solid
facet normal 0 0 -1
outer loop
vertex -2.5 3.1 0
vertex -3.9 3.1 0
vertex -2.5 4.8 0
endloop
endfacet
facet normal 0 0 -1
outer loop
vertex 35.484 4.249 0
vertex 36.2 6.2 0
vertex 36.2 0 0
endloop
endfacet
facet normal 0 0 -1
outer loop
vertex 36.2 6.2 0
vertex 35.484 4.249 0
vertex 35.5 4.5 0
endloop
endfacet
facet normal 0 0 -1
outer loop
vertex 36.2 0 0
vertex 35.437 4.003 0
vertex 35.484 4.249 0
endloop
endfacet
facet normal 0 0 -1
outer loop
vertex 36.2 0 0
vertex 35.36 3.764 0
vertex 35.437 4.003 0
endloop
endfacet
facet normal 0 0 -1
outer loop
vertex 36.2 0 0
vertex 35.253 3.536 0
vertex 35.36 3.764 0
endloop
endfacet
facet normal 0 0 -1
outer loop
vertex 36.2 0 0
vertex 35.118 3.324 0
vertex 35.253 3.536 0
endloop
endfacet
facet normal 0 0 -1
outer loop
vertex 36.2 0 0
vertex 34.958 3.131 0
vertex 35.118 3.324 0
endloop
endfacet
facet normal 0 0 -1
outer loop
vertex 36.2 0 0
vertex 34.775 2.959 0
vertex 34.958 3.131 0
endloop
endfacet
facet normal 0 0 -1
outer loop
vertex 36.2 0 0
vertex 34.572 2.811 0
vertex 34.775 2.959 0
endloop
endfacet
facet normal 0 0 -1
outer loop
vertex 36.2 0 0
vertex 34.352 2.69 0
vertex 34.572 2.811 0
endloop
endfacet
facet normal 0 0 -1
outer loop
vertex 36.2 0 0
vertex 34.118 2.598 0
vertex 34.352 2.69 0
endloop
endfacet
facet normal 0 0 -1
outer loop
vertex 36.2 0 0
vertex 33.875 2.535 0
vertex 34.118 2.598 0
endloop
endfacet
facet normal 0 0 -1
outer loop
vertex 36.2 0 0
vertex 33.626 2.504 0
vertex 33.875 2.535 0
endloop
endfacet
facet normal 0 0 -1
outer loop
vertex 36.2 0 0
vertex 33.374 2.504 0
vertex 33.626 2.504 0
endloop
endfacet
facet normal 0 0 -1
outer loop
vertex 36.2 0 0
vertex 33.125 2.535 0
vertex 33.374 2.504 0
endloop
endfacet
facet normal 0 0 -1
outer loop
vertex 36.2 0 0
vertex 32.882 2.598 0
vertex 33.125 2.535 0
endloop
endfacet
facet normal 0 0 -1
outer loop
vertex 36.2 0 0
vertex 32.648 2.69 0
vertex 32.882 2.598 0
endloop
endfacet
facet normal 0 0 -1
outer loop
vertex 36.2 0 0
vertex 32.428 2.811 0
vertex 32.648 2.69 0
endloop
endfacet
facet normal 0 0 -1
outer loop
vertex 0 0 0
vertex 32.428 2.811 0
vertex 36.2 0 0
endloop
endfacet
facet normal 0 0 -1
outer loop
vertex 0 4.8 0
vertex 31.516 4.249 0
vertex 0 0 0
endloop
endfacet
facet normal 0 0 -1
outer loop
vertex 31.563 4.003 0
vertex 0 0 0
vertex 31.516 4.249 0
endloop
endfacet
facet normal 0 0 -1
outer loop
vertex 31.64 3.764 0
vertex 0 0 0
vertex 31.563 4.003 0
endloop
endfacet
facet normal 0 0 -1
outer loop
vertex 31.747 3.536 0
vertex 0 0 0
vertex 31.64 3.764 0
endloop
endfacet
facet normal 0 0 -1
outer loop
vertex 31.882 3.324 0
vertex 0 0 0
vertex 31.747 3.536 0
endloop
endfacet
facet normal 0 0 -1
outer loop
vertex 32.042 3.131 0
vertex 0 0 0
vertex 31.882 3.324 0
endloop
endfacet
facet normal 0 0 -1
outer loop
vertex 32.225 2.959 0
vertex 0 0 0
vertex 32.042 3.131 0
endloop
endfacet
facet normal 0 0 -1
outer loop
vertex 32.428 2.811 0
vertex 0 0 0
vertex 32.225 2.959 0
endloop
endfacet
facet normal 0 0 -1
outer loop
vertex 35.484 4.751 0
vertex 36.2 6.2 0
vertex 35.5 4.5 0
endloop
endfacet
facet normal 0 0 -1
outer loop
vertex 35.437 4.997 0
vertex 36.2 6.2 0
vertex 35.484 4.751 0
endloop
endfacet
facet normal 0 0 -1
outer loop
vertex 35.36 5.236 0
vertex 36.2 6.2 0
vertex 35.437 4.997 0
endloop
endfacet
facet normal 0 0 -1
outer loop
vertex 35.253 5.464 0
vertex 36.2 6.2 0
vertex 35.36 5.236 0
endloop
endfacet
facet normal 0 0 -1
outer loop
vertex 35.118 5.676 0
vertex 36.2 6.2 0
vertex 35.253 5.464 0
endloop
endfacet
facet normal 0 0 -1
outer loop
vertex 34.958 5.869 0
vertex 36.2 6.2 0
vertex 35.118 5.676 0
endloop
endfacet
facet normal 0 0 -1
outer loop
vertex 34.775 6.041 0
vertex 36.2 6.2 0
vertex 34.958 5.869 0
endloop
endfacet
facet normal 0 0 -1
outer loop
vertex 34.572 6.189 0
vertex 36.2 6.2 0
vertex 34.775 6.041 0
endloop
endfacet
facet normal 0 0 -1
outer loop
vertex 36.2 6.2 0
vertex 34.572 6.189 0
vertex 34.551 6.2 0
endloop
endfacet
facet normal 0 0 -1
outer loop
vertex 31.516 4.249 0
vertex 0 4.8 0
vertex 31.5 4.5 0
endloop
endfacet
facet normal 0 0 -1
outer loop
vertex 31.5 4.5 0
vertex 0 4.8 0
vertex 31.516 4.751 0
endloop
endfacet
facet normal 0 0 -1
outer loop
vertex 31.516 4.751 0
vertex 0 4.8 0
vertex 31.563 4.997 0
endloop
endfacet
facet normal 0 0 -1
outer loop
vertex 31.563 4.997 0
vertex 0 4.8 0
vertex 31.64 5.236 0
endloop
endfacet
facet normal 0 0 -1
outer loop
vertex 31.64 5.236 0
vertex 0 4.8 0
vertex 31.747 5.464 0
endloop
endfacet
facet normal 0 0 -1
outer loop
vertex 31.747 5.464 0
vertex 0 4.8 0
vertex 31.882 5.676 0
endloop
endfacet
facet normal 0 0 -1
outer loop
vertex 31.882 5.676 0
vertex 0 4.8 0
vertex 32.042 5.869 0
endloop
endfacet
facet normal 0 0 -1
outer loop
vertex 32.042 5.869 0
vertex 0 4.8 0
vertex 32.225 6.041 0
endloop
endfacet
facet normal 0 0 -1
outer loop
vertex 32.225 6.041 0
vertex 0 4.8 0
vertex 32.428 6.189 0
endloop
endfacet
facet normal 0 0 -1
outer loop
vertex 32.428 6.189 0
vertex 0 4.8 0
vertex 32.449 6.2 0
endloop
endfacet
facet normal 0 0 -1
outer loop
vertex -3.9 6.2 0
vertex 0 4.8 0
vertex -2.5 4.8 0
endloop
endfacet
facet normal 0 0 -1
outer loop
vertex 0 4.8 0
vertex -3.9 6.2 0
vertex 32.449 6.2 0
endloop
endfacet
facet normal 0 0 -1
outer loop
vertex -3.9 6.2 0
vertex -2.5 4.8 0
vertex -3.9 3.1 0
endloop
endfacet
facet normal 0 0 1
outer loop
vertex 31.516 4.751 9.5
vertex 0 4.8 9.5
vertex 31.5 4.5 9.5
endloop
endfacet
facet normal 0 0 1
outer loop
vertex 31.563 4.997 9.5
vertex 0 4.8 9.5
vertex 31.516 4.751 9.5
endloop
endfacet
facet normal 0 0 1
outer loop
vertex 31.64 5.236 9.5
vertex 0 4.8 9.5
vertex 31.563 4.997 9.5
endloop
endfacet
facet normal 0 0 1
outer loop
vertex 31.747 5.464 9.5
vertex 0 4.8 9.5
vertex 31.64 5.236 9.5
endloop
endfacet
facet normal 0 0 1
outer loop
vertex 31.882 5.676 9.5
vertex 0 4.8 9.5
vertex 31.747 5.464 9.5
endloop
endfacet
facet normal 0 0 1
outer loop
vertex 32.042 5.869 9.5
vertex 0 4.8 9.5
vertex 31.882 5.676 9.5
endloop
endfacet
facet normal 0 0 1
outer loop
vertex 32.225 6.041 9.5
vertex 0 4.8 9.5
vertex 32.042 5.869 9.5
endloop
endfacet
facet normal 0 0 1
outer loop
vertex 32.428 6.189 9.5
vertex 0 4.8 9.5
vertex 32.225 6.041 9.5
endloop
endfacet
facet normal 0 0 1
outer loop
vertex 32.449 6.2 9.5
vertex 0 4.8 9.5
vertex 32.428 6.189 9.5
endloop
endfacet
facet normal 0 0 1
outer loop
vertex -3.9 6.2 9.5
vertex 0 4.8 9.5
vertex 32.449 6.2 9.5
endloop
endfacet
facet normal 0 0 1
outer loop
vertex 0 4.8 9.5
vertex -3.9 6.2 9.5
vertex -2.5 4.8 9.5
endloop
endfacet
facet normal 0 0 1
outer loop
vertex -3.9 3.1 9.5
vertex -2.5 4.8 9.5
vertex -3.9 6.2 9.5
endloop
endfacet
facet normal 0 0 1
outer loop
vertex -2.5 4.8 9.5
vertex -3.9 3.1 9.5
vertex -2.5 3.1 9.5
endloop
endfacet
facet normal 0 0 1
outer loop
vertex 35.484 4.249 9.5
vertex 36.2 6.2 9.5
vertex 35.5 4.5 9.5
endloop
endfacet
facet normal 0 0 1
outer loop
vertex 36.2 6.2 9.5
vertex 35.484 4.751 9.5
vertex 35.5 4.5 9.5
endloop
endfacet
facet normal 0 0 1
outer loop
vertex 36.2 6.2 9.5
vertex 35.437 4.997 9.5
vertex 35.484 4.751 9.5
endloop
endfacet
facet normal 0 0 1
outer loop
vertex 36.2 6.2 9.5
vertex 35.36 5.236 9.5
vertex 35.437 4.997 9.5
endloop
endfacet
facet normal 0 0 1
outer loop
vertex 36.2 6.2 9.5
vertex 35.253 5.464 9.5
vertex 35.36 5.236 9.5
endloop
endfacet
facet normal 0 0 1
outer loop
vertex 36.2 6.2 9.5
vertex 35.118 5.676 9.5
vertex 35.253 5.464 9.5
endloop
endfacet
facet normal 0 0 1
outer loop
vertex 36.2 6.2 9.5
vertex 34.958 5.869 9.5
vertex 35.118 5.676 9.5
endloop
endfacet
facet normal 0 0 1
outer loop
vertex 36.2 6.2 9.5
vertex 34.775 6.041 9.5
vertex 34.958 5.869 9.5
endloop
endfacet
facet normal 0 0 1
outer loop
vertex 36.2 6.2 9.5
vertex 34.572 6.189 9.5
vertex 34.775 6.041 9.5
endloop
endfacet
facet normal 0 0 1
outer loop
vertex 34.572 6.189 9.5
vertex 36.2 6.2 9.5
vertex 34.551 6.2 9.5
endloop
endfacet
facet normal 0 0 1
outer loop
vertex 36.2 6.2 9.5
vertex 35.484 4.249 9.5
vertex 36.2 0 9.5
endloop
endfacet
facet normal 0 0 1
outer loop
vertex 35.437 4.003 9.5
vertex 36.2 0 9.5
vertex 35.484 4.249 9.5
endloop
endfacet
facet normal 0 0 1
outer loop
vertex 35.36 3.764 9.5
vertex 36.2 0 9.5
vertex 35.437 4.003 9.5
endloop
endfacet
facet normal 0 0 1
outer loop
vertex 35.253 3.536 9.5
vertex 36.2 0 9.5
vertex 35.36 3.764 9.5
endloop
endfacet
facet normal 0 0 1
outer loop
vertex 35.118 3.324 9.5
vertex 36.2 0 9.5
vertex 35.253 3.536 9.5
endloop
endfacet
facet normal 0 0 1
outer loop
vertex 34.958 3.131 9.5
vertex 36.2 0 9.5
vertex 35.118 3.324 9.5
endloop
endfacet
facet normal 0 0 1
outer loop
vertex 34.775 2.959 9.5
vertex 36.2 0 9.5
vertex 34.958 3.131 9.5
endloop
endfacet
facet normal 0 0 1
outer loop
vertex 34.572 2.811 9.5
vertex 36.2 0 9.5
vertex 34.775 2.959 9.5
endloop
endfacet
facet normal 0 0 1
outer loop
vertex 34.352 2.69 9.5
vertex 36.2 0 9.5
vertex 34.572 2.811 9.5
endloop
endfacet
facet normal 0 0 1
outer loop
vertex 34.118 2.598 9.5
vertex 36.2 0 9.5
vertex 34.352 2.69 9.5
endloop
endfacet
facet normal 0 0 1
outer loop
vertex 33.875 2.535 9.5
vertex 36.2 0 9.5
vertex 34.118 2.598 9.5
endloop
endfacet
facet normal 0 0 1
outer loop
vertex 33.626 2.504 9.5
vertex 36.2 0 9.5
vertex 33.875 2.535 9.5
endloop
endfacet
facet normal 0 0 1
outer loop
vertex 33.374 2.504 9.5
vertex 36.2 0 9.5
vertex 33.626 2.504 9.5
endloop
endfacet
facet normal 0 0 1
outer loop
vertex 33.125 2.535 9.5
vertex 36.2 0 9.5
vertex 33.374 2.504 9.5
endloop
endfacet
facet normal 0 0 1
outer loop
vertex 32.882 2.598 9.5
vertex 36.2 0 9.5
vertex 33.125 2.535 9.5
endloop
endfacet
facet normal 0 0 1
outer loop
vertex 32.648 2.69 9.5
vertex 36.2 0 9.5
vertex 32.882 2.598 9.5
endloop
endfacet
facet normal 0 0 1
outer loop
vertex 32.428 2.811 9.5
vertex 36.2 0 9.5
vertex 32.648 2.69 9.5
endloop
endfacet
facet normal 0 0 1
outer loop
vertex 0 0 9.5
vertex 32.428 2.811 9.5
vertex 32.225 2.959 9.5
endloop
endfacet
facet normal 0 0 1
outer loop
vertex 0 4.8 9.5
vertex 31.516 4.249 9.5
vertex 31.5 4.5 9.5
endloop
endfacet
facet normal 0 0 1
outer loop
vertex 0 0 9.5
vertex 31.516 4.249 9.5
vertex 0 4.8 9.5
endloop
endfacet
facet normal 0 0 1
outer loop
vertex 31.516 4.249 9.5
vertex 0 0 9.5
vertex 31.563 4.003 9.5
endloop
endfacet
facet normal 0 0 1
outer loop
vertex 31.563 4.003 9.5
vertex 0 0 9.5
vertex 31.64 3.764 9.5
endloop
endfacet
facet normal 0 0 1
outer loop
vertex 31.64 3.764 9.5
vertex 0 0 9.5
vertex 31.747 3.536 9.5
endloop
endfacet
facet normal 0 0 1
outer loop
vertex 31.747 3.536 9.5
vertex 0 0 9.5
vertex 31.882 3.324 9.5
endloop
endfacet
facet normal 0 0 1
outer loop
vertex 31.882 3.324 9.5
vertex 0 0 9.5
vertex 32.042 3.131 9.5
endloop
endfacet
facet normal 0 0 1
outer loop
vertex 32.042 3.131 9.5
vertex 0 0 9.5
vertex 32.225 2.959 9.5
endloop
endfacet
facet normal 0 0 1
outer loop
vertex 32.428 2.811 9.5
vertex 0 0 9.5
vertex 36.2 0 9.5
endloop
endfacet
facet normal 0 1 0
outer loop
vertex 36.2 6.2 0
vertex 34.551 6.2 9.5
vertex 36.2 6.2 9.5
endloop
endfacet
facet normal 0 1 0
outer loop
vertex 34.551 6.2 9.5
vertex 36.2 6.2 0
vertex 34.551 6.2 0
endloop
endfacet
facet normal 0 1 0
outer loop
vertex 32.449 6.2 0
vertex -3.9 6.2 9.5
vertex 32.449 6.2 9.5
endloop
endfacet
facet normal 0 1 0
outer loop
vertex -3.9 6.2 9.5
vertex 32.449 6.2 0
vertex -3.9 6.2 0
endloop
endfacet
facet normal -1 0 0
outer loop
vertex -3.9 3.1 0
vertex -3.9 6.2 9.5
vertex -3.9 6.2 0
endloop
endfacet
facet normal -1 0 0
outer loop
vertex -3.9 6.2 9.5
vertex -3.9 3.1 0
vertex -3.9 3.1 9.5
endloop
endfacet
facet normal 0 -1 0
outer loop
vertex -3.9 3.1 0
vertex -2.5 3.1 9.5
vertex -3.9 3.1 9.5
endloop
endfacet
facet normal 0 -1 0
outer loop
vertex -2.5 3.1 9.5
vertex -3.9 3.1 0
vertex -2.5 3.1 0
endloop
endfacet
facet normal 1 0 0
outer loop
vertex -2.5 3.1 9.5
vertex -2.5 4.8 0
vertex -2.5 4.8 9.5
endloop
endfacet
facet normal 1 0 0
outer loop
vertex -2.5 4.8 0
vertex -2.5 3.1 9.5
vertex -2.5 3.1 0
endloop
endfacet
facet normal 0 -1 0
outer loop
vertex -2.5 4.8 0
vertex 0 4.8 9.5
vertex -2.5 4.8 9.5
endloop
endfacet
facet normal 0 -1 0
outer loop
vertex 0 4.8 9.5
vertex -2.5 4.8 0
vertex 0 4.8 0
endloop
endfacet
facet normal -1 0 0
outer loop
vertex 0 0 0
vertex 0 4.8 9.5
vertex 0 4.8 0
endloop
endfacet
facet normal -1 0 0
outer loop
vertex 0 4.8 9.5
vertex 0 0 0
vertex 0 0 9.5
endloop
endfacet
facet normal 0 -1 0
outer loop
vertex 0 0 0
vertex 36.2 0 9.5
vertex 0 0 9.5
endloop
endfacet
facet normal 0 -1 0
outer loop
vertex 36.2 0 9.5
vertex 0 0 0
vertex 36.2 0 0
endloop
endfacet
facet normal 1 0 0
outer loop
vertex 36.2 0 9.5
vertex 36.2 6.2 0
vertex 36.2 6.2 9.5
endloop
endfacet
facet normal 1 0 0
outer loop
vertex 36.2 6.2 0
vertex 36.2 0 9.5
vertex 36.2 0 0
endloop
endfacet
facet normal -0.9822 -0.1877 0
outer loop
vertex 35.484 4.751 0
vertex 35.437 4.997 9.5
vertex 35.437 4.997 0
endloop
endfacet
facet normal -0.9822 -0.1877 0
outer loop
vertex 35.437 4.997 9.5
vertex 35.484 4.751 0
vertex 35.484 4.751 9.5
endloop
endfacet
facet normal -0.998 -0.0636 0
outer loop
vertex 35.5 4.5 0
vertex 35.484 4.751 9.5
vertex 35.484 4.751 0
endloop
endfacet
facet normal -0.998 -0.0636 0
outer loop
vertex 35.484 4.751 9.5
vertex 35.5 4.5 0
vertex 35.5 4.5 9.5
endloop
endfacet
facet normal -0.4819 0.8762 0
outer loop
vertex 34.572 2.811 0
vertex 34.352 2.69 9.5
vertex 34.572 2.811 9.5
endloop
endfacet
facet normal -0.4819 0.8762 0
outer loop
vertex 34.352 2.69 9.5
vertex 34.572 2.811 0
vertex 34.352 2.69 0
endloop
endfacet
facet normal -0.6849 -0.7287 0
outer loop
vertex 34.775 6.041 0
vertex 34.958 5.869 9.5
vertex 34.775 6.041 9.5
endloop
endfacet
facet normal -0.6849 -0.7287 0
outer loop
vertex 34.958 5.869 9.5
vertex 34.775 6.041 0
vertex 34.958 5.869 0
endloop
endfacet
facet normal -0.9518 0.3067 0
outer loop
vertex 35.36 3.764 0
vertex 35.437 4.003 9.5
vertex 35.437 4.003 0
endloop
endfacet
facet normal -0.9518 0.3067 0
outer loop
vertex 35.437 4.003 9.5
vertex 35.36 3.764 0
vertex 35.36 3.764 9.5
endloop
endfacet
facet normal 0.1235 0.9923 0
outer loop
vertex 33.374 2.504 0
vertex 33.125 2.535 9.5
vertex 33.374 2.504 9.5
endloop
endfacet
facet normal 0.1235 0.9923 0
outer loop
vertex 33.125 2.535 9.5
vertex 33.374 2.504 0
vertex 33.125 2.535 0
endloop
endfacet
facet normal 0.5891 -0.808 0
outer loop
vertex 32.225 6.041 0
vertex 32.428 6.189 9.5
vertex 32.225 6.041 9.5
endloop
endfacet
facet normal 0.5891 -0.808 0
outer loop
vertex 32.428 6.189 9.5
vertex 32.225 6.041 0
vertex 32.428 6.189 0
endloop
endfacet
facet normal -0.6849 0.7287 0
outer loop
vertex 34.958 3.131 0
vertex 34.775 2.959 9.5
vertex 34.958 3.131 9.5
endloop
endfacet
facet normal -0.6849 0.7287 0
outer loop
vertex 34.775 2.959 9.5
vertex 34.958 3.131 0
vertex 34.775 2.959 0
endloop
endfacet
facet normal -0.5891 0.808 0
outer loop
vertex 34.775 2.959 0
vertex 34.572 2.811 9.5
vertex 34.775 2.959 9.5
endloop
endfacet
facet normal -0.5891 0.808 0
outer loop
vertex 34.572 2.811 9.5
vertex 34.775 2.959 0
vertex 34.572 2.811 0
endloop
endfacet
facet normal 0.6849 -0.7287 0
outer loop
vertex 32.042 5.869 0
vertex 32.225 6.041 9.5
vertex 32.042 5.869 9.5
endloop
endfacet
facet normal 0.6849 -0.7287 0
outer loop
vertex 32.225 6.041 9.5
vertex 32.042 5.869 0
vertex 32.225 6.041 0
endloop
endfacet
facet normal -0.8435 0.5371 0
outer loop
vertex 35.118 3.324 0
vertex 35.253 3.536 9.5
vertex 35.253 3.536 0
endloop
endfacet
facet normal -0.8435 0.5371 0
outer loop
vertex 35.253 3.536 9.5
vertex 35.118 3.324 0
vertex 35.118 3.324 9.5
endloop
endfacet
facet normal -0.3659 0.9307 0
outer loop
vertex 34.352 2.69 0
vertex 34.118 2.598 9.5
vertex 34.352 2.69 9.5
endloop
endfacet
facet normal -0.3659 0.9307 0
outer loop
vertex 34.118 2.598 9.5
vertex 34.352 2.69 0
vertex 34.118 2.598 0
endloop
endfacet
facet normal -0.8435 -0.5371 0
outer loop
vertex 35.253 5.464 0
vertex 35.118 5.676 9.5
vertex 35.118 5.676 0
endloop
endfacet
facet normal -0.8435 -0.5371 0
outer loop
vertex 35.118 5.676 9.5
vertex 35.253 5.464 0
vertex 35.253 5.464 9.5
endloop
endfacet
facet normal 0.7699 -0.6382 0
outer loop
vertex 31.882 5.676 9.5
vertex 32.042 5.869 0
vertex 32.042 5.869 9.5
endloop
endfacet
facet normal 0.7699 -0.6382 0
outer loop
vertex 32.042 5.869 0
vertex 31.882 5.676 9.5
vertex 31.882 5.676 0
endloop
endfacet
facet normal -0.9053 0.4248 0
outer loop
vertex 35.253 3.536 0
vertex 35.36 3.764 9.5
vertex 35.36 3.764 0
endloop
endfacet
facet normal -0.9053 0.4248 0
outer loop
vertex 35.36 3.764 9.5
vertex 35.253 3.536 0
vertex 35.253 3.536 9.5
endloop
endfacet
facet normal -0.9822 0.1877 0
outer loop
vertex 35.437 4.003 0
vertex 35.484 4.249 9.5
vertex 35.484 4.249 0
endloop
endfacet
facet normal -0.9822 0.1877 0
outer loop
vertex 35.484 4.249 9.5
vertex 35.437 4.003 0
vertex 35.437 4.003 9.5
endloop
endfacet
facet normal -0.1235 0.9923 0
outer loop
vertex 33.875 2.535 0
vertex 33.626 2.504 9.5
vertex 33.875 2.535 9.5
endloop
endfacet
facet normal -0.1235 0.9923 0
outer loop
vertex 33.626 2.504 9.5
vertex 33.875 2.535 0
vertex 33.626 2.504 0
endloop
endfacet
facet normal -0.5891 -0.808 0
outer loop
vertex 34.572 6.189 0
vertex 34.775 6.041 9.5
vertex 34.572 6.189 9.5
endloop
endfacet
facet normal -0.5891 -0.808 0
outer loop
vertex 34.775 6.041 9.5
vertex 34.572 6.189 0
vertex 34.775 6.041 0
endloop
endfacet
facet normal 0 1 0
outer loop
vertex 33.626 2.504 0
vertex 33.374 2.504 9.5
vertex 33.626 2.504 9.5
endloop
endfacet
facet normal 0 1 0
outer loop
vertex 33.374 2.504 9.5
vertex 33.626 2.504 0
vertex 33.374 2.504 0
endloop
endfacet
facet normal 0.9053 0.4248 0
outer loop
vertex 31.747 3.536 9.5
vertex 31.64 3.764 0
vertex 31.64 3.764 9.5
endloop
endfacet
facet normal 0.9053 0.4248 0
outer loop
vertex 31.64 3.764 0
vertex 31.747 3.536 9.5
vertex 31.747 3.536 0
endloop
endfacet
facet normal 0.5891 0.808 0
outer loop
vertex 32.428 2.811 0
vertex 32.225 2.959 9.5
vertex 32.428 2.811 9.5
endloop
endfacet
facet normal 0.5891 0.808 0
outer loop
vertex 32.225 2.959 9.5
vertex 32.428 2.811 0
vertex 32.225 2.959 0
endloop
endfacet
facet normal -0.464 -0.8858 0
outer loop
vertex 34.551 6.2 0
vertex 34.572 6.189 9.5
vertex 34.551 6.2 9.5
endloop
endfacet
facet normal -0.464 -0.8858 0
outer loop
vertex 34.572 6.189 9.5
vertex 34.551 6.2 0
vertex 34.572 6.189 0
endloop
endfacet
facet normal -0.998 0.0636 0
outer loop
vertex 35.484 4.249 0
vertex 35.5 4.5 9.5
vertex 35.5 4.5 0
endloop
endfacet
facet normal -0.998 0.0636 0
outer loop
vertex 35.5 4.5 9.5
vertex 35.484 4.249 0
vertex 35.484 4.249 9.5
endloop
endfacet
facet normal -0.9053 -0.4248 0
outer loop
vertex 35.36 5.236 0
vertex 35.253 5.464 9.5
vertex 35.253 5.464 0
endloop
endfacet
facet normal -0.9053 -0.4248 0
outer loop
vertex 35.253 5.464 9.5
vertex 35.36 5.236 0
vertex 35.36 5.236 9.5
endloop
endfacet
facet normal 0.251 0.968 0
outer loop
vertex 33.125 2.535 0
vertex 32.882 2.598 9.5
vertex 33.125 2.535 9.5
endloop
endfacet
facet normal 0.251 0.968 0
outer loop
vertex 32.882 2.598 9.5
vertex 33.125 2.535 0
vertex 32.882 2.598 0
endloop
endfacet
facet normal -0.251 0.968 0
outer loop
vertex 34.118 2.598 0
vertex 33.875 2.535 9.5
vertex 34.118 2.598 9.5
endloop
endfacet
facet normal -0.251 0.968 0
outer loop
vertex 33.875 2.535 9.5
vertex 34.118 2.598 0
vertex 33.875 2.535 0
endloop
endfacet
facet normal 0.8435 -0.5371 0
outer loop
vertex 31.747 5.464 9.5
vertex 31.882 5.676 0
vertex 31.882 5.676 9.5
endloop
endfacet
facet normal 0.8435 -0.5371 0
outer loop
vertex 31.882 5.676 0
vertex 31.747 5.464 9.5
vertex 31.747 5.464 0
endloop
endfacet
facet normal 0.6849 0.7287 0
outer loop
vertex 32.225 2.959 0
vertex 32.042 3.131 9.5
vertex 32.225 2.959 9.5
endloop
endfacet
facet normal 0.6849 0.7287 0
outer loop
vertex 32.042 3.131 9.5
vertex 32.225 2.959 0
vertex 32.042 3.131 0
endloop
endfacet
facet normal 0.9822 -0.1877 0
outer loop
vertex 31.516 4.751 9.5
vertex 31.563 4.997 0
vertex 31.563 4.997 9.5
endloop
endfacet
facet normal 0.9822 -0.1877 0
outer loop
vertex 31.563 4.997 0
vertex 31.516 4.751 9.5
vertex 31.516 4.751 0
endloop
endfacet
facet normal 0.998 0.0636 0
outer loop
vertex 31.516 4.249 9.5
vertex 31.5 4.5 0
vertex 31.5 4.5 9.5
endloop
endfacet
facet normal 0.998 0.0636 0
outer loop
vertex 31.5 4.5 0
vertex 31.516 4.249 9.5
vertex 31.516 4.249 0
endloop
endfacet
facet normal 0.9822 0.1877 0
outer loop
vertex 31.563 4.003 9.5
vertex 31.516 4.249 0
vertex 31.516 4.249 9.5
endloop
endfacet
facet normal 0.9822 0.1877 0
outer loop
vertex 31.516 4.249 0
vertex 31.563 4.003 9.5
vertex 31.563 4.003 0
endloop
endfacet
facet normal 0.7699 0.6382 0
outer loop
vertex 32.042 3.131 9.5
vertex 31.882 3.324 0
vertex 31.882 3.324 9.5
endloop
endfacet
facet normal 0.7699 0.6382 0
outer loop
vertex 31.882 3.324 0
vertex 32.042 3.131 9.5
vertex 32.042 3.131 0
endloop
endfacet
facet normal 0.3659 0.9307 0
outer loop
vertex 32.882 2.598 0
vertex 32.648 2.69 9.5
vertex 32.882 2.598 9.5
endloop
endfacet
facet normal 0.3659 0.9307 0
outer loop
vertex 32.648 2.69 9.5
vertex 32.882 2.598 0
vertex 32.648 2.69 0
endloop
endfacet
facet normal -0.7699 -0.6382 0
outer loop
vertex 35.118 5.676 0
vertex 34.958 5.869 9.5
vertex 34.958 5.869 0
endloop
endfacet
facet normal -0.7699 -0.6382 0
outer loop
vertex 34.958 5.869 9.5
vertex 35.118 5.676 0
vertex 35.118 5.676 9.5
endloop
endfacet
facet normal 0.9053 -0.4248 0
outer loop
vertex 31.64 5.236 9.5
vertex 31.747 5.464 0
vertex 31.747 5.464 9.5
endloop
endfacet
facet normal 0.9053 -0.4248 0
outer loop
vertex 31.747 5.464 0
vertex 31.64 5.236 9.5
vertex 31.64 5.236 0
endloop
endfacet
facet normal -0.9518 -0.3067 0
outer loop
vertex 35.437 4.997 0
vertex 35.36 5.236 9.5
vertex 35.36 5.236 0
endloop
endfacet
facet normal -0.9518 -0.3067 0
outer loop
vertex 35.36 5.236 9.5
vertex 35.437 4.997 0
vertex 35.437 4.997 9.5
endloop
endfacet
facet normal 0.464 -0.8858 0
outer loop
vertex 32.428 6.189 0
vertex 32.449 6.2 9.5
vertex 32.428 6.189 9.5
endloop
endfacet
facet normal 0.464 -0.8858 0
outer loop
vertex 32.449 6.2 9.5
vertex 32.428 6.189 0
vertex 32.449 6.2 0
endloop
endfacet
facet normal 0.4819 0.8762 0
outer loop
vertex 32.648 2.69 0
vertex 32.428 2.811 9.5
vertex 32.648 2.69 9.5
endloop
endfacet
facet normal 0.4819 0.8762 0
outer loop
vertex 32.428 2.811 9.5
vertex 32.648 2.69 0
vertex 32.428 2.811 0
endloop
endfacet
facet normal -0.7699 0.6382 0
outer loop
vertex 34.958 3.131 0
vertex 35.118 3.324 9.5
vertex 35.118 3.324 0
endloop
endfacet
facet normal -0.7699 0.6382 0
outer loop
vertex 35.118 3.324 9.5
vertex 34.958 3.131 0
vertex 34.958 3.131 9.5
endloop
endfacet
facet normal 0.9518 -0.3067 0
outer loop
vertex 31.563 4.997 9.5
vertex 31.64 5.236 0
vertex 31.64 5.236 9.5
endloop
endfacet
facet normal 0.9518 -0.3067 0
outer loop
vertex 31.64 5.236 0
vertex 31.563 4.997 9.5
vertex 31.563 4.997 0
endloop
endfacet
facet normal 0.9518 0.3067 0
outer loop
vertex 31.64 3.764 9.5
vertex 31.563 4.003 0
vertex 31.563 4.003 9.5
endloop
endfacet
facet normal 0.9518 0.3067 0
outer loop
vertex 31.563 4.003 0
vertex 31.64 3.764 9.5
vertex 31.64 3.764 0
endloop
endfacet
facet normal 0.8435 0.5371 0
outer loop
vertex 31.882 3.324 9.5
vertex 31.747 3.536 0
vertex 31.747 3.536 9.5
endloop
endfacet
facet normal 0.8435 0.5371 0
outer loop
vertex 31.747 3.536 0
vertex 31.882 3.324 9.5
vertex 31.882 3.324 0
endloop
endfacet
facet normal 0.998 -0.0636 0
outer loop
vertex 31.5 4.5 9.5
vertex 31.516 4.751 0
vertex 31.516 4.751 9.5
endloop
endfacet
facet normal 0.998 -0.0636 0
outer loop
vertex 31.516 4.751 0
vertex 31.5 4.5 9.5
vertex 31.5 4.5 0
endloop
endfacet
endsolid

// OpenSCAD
/*
Title: Candy dishwasher - Door handle front plate
*/
$fn=20;

module body(){
    polygon(points=[[0,0],[36.2,0],
    [36.2,6.2],[-3.9,6.2],[-3.9,3.1],[-2.5, 3.1],[-2.5, 4.8],[0, 4.8]
     ]);
}

module hole(){
    translate([33.5,4.5,-1]) 
    cylinder(r=2,h=12,$fn=50);
}
    
difference(){
    linear_extrude (height=9.5)
    body();
    hole();
}
